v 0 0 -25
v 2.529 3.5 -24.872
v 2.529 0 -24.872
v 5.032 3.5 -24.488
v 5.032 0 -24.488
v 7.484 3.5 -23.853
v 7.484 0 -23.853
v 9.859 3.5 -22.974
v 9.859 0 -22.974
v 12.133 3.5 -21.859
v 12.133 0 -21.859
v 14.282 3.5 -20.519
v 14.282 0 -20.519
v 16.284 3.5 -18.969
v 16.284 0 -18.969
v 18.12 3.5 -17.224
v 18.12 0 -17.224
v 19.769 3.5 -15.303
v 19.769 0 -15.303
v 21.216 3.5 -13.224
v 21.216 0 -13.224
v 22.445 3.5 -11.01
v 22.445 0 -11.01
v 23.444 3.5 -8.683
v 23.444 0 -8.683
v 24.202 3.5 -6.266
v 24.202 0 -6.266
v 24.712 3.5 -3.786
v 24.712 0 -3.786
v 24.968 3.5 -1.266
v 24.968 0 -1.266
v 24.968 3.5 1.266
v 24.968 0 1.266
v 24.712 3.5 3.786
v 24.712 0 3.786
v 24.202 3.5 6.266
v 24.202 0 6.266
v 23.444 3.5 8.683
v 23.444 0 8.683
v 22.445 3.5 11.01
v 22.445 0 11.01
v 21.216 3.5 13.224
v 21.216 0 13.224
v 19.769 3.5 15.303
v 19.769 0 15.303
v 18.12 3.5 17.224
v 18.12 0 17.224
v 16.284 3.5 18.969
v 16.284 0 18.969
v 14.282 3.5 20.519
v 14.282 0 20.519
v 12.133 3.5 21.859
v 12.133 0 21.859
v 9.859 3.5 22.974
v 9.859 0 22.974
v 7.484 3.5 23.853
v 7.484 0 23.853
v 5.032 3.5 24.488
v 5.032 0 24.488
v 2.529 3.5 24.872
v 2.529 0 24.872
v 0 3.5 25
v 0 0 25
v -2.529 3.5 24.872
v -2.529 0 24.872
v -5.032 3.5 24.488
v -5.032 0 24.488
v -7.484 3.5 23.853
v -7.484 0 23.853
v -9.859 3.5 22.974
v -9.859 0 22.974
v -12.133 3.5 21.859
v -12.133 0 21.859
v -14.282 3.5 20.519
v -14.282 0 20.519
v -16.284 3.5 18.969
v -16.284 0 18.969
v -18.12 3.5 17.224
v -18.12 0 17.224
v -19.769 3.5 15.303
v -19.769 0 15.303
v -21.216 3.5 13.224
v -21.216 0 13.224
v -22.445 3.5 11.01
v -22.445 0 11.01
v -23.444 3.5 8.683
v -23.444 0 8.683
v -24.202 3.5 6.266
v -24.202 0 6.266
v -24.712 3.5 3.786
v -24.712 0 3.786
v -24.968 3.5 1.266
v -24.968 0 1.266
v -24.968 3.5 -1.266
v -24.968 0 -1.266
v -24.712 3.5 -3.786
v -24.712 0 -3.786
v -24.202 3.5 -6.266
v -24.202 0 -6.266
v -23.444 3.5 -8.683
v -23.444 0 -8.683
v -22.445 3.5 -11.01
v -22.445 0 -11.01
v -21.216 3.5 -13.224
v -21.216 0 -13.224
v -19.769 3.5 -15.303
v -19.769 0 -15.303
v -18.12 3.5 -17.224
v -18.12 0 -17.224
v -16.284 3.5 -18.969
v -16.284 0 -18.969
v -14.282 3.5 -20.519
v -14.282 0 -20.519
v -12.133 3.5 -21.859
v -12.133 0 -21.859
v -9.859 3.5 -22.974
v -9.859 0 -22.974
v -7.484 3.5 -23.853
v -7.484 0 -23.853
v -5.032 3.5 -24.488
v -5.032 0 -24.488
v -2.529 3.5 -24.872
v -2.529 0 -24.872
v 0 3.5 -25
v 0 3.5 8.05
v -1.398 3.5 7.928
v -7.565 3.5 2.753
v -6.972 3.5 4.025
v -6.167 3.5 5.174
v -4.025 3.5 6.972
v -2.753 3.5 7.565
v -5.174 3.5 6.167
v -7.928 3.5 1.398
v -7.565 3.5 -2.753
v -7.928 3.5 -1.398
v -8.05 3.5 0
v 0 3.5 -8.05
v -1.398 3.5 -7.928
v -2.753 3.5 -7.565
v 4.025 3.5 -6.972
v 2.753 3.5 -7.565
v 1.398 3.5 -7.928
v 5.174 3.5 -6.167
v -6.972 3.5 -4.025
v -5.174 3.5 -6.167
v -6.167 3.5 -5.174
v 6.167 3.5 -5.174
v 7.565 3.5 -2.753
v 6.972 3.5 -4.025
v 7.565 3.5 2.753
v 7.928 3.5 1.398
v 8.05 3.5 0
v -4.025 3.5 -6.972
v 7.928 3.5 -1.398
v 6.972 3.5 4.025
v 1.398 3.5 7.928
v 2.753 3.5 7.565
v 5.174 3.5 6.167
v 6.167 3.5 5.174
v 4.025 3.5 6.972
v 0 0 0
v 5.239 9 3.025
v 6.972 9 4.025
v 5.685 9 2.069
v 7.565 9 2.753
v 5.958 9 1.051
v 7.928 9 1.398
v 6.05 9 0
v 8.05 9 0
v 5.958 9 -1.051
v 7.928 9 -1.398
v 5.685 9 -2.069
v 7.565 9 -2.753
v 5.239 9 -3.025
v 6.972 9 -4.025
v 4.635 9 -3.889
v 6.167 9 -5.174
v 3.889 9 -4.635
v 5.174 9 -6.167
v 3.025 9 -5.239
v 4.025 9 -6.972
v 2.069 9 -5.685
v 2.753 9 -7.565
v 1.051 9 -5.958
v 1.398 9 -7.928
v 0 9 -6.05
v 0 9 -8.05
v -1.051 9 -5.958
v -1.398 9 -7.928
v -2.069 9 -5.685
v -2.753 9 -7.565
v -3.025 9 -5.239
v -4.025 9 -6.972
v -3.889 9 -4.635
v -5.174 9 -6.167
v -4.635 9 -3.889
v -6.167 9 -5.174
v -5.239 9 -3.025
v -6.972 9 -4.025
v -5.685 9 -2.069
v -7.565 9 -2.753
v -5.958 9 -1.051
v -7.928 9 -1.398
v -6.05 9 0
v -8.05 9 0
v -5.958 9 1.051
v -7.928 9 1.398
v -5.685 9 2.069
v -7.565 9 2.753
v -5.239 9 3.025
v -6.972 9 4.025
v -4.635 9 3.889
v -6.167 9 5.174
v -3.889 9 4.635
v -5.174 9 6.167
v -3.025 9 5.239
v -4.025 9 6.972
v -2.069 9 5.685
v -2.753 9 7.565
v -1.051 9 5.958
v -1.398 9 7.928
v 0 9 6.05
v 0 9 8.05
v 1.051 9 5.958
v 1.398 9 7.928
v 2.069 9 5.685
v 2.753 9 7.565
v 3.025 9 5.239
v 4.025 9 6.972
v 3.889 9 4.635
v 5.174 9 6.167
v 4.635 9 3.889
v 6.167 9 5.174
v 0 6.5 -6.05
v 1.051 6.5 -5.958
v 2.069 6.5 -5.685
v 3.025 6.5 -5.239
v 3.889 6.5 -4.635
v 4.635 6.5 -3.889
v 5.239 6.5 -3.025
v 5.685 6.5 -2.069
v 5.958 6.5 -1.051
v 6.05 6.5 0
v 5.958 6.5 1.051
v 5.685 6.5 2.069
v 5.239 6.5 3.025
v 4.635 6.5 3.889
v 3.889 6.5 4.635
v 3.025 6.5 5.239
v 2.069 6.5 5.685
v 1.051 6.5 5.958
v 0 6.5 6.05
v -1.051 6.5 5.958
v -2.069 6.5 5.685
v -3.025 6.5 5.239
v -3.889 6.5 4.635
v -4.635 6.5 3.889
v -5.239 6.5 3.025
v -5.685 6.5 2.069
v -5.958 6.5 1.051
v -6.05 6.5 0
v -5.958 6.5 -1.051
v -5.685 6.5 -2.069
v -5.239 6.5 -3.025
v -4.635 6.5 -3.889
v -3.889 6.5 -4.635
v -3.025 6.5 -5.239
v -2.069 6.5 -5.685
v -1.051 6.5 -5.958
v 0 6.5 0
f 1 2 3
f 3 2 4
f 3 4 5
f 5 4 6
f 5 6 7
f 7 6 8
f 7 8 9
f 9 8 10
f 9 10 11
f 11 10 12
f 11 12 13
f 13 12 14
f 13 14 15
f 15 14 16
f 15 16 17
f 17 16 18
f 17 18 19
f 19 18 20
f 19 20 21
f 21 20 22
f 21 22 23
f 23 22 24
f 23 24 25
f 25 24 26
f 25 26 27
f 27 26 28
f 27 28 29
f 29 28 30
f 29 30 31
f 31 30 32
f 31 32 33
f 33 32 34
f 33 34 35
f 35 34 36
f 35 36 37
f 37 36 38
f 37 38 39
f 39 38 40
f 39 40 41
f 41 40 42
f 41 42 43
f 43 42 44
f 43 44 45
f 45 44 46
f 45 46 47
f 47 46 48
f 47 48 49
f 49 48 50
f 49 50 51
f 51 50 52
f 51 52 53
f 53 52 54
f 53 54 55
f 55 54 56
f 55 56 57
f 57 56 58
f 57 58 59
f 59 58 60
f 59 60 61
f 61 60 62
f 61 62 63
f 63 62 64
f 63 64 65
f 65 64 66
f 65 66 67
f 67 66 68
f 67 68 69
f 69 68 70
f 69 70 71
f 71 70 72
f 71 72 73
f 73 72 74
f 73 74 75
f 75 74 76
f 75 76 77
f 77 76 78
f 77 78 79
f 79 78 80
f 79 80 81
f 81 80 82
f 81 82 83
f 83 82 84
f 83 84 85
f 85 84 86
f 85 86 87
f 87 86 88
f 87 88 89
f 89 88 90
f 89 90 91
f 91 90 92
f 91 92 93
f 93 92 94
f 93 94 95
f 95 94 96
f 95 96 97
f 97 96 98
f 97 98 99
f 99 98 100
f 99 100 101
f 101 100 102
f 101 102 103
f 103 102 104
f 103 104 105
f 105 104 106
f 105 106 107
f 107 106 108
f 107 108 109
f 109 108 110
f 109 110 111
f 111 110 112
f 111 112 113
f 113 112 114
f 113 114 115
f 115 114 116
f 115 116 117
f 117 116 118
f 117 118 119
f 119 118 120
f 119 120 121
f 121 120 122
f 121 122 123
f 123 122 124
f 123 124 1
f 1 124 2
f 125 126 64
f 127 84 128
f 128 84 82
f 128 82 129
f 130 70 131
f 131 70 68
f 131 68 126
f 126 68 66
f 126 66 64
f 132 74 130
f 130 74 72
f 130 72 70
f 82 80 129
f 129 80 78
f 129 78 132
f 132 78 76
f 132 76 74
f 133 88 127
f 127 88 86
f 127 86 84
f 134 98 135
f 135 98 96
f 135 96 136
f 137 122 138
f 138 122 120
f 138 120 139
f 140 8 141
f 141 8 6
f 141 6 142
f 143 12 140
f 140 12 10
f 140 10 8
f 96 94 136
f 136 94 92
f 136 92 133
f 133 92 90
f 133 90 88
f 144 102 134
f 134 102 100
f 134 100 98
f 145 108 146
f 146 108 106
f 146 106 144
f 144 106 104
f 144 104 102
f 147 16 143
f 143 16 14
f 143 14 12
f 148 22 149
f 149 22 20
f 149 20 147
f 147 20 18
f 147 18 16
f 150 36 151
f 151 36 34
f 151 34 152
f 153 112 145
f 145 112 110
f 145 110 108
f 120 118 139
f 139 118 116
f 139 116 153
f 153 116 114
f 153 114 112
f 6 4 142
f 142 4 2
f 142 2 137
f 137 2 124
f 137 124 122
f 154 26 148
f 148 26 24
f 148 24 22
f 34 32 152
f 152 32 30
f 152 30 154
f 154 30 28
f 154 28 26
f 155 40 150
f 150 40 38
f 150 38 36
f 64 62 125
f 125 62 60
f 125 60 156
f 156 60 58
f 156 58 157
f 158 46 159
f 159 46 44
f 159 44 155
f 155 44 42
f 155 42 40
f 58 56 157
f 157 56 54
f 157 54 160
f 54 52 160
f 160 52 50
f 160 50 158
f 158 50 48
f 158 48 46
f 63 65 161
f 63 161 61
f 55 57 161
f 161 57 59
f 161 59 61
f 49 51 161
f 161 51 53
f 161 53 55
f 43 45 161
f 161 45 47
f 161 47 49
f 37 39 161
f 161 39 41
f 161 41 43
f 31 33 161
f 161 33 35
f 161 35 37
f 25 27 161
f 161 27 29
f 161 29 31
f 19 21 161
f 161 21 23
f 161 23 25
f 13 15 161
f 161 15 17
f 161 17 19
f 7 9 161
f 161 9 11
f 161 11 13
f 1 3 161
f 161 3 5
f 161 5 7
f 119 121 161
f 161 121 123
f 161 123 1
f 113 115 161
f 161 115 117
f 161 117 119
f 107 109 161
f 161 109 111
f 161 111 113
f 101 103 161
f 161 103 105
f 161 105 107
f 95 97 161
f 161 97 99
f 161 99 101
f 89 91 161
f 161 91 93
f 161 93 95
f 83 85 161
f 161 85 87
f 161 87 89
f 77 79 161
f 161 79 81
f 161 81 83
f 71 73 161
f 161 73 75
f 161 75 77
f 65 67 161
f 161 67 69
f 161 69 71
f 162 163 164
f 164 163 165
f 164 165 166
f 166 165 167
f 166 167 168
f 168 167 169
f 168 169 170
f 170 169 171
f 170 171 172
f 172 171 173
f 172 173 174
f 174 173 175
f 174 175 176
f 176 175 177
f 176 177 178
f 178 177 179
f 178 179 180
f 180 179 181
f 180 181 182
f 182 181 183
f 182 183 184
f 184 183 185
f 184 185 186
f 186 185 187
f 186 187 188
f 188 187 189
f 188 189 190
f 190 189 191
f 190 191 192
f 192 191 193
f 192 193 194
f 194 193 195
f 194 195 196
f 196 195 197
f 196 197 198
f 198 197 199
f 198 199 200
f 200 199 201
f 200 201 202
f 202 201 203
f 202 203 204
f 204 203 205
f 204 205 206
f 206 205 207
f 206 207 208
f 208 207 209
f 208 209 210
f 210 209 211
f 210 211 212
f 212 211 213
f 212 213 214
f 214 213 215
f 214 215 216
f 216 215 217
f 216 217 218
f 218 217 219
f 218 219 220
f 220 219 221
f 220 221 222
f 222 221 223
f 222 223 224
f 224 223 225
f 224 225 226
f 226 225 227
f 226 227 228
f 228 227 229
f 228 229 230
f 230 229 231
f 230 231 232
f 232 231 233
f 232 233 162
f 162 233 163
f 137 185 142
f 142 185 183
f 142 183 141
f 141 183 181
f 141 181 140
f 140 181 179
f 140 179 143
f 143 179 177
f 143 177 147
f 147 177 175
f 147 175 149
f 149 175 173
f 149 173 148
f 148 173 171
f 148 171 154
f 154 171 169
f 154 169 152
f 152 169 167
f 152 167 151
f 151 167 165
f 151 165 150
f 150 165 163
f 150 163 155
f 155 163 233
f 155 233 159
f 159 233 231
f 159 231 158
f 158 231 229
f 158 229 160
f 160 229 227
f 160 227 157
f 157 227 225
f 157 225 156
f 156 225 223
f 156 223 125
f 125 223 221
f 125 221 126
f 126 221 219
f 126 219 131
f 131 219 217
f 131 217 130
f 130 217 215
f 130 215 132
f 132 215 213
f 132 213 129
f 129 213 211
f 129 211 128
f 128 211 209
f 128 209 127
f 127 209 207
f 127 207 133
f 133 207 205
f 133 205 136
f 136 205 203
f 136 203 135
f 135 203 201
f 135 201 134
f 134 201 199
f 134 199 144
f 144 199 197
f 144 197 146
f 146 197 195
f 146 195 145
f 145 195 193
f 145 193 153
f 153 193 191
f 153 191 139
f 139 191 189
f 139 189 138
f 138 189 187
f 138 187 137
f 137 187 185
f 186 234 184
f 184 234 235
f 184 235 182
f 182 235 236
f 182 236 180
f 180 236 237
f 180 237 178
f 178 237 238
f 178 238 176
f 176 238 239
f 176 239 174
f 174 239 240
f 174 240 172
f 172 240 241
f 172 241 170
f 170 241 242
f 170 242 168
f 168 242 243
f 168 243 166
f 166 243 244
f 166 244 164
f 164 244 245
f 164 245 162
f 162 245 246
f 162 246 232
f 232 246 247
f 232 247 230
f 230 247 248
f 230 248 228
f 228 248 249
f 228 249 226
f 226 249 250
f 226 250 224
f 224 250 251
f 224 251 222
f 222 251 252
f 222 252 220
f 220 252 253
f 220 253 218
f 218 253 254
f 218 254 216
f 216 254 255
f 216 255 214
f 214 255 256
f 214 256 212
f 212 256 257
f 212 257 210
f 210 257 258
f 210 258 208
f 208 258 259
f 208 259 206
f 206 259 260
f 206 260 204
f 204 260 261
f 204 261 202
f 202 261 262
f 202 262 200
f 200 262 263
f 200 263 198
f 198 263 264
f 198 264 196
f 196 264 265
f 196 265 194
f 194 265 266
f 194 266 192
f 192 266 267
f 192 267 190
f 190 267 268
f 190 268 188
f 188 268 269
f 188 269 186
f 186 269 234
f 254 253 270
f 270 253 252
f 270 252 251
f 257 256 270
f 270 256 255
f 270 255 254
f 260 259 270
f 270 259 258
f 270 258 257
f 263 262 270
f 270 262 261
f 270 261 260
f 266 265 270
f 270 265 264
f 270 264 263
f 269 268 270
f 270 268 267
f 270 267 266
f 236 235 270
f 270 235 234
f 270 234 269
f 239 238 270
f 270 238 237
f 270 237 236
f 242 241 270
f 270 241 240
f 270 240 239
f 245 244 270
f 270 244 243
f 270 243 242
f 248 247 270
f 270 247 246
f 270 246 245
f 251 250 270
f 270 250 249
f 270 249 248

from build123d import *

# Parameters (mm, degrees)
SKETCH1_R           = 25
BOSS_EXTRUDE1_DEPTH = 3.5
SKETCH2_R           = 8.05
SKETCH2_R_2         = 6.05
BOSS_EXTRUDE2_DEPTH = 5.5
SKETCH3_R           = 6.15
BOSS_EXTRUDE3_DEPTH = 3


with BuildPart() as part:
    # Sketch1 → Boss-Extrude1 (new body)
    with BuildSketch(Plane(origin=(0, 0, 0), x_dir=(1, 0, 0), z_dir=(0, 1, 0))):
        with Locations(Location((0, 0, 0), (0, 0, 270))):
            Circle(SKETCH1_R)
    extrude(amount=BOSS_EXTRUDE1_DEPTH)

    # Sketch2 → Boss-Extrude2 (add)
    with BuildSketch(Plane(origin=(0, 3.5, 0), x_dir=(1, 0, 0), z_dir=(0, 1, 0))):
        with Locations(Location((0, 0, 0), (0, 0, 270))):
            Circle(SKETCH2_R)
        with Locations(Location((0, 0, 0), (0, 0, 270))):
            Circle(SKETCH2_R_2, mode=Mode.SUBTRACT)
    extrude(amount=BOSS_EXTRUDE2_DEPTH)

    # Sketch3 → Boss-Extrude3 (add)
    with BuildSketch(Plane(origin=(0, 3.5, 0), x_dir=(1, 0, 0), z_dir=(0, 1, 0))):
        Circle(SKETCH3_R)
    extrude(amount=BOSS_EXTRUDE3_DEPTH)


solid = part.part
